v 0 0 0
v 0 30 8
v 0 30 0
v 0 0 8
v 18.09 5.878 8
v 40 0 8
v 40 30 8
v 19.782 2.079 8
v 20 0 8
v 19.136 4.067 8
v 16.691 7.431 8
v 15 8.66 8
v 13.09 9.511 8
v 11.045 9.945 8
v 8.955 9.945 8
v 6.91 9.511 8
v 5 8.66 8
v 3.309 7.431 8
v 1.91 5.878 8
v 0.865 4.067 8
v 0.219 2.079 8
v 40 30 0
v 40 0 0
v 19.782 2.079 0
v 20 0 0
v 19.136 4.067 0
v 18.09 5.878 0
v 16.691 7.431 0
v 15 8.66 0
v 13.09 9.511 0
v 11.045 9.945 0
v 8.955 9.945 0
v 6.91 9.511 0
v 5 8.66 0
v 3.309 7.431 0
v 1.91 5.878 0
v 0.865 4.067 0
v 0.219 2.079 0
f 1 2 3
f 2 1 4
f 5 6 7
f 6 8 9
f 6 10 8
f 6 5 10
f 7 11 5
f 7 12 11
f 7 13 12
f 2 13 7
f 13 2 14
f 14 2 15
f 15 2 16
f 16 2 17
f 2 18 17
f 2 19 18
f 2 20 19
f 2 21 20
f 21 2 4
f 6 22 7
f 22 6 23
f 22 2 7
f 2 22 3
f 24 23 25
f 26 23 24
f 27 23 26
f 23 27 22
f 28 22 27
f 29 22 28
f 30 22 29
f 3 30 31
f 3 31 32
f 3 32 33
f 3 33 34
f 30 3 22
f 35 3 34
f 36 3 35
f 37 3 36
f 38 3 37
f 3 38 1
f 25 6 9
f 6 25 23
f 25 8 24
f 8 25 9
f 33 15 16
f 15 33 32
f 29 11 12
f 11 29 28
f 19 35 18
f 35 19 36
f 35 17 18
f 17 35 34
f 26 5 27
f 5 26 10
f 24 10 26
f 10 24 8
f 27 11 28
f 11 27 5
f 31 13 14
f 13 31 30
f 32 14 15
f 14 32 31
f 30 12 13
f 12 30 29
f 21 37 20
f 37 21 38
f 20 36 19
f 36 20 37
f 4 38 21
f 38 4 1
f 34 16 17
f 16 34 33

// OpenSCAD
module rectangular_plate(length, width, thickness) {
    difference() {
        cube([length, width, thickness]);
        translate([length/4, 0, -thickness/2]) cylinder(h=30, r=10);
    }
}

rectangular_plate(40, 30, 8);
